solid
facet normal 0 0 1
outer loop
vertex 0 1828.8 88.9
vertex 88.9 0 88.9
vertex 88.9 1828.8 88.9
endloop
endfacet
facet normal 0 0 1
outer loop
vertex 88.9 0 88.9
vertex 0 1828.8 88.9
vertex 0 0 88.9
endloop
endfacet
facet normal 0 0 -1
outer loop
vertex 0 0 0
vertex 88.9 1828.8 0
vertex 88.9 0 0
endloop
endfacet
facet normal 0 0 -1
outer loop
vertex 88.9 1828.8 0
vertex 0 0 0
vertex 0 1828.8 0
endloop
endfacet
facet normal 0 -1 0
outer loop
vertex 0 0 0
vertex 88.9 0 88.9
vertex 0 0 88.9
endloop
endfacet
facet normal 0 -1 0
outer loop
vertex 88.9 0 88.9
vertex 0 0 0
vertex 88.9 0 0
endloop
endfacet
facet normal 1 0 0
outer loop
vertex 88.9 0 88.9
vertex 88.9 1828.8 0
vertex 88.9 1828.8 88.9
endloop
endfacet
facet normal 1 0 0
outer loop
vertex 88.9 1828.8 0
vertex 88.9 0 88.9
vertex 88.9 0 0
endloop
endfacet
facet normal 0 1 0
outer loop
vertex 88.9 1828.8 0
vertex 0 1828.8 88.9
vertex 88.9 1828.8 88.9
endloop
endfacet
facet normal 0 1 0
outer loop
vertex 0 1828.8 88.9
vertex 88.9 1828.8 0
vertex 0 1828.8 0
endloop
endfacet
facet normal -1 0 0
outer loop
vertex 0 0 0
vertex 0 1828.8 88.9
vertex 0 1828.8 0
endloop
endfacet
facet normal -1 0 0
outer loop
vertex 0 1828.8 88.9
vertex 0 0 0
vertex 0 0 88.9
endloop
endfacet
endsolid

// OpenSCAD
/* dimensions in mm
*/
inch = 25.4;
lumberinch = inch*0.75;
lumbertwoinch = inch*1.5;
lumberfourinch = inch*3.5;
lumbersixinch = inch*5.5;
feet = inch*12;

module onebysix(); {
    color("Peru")
    cube([lumberfourinch,feet*6,lumberfourinch]);
}
